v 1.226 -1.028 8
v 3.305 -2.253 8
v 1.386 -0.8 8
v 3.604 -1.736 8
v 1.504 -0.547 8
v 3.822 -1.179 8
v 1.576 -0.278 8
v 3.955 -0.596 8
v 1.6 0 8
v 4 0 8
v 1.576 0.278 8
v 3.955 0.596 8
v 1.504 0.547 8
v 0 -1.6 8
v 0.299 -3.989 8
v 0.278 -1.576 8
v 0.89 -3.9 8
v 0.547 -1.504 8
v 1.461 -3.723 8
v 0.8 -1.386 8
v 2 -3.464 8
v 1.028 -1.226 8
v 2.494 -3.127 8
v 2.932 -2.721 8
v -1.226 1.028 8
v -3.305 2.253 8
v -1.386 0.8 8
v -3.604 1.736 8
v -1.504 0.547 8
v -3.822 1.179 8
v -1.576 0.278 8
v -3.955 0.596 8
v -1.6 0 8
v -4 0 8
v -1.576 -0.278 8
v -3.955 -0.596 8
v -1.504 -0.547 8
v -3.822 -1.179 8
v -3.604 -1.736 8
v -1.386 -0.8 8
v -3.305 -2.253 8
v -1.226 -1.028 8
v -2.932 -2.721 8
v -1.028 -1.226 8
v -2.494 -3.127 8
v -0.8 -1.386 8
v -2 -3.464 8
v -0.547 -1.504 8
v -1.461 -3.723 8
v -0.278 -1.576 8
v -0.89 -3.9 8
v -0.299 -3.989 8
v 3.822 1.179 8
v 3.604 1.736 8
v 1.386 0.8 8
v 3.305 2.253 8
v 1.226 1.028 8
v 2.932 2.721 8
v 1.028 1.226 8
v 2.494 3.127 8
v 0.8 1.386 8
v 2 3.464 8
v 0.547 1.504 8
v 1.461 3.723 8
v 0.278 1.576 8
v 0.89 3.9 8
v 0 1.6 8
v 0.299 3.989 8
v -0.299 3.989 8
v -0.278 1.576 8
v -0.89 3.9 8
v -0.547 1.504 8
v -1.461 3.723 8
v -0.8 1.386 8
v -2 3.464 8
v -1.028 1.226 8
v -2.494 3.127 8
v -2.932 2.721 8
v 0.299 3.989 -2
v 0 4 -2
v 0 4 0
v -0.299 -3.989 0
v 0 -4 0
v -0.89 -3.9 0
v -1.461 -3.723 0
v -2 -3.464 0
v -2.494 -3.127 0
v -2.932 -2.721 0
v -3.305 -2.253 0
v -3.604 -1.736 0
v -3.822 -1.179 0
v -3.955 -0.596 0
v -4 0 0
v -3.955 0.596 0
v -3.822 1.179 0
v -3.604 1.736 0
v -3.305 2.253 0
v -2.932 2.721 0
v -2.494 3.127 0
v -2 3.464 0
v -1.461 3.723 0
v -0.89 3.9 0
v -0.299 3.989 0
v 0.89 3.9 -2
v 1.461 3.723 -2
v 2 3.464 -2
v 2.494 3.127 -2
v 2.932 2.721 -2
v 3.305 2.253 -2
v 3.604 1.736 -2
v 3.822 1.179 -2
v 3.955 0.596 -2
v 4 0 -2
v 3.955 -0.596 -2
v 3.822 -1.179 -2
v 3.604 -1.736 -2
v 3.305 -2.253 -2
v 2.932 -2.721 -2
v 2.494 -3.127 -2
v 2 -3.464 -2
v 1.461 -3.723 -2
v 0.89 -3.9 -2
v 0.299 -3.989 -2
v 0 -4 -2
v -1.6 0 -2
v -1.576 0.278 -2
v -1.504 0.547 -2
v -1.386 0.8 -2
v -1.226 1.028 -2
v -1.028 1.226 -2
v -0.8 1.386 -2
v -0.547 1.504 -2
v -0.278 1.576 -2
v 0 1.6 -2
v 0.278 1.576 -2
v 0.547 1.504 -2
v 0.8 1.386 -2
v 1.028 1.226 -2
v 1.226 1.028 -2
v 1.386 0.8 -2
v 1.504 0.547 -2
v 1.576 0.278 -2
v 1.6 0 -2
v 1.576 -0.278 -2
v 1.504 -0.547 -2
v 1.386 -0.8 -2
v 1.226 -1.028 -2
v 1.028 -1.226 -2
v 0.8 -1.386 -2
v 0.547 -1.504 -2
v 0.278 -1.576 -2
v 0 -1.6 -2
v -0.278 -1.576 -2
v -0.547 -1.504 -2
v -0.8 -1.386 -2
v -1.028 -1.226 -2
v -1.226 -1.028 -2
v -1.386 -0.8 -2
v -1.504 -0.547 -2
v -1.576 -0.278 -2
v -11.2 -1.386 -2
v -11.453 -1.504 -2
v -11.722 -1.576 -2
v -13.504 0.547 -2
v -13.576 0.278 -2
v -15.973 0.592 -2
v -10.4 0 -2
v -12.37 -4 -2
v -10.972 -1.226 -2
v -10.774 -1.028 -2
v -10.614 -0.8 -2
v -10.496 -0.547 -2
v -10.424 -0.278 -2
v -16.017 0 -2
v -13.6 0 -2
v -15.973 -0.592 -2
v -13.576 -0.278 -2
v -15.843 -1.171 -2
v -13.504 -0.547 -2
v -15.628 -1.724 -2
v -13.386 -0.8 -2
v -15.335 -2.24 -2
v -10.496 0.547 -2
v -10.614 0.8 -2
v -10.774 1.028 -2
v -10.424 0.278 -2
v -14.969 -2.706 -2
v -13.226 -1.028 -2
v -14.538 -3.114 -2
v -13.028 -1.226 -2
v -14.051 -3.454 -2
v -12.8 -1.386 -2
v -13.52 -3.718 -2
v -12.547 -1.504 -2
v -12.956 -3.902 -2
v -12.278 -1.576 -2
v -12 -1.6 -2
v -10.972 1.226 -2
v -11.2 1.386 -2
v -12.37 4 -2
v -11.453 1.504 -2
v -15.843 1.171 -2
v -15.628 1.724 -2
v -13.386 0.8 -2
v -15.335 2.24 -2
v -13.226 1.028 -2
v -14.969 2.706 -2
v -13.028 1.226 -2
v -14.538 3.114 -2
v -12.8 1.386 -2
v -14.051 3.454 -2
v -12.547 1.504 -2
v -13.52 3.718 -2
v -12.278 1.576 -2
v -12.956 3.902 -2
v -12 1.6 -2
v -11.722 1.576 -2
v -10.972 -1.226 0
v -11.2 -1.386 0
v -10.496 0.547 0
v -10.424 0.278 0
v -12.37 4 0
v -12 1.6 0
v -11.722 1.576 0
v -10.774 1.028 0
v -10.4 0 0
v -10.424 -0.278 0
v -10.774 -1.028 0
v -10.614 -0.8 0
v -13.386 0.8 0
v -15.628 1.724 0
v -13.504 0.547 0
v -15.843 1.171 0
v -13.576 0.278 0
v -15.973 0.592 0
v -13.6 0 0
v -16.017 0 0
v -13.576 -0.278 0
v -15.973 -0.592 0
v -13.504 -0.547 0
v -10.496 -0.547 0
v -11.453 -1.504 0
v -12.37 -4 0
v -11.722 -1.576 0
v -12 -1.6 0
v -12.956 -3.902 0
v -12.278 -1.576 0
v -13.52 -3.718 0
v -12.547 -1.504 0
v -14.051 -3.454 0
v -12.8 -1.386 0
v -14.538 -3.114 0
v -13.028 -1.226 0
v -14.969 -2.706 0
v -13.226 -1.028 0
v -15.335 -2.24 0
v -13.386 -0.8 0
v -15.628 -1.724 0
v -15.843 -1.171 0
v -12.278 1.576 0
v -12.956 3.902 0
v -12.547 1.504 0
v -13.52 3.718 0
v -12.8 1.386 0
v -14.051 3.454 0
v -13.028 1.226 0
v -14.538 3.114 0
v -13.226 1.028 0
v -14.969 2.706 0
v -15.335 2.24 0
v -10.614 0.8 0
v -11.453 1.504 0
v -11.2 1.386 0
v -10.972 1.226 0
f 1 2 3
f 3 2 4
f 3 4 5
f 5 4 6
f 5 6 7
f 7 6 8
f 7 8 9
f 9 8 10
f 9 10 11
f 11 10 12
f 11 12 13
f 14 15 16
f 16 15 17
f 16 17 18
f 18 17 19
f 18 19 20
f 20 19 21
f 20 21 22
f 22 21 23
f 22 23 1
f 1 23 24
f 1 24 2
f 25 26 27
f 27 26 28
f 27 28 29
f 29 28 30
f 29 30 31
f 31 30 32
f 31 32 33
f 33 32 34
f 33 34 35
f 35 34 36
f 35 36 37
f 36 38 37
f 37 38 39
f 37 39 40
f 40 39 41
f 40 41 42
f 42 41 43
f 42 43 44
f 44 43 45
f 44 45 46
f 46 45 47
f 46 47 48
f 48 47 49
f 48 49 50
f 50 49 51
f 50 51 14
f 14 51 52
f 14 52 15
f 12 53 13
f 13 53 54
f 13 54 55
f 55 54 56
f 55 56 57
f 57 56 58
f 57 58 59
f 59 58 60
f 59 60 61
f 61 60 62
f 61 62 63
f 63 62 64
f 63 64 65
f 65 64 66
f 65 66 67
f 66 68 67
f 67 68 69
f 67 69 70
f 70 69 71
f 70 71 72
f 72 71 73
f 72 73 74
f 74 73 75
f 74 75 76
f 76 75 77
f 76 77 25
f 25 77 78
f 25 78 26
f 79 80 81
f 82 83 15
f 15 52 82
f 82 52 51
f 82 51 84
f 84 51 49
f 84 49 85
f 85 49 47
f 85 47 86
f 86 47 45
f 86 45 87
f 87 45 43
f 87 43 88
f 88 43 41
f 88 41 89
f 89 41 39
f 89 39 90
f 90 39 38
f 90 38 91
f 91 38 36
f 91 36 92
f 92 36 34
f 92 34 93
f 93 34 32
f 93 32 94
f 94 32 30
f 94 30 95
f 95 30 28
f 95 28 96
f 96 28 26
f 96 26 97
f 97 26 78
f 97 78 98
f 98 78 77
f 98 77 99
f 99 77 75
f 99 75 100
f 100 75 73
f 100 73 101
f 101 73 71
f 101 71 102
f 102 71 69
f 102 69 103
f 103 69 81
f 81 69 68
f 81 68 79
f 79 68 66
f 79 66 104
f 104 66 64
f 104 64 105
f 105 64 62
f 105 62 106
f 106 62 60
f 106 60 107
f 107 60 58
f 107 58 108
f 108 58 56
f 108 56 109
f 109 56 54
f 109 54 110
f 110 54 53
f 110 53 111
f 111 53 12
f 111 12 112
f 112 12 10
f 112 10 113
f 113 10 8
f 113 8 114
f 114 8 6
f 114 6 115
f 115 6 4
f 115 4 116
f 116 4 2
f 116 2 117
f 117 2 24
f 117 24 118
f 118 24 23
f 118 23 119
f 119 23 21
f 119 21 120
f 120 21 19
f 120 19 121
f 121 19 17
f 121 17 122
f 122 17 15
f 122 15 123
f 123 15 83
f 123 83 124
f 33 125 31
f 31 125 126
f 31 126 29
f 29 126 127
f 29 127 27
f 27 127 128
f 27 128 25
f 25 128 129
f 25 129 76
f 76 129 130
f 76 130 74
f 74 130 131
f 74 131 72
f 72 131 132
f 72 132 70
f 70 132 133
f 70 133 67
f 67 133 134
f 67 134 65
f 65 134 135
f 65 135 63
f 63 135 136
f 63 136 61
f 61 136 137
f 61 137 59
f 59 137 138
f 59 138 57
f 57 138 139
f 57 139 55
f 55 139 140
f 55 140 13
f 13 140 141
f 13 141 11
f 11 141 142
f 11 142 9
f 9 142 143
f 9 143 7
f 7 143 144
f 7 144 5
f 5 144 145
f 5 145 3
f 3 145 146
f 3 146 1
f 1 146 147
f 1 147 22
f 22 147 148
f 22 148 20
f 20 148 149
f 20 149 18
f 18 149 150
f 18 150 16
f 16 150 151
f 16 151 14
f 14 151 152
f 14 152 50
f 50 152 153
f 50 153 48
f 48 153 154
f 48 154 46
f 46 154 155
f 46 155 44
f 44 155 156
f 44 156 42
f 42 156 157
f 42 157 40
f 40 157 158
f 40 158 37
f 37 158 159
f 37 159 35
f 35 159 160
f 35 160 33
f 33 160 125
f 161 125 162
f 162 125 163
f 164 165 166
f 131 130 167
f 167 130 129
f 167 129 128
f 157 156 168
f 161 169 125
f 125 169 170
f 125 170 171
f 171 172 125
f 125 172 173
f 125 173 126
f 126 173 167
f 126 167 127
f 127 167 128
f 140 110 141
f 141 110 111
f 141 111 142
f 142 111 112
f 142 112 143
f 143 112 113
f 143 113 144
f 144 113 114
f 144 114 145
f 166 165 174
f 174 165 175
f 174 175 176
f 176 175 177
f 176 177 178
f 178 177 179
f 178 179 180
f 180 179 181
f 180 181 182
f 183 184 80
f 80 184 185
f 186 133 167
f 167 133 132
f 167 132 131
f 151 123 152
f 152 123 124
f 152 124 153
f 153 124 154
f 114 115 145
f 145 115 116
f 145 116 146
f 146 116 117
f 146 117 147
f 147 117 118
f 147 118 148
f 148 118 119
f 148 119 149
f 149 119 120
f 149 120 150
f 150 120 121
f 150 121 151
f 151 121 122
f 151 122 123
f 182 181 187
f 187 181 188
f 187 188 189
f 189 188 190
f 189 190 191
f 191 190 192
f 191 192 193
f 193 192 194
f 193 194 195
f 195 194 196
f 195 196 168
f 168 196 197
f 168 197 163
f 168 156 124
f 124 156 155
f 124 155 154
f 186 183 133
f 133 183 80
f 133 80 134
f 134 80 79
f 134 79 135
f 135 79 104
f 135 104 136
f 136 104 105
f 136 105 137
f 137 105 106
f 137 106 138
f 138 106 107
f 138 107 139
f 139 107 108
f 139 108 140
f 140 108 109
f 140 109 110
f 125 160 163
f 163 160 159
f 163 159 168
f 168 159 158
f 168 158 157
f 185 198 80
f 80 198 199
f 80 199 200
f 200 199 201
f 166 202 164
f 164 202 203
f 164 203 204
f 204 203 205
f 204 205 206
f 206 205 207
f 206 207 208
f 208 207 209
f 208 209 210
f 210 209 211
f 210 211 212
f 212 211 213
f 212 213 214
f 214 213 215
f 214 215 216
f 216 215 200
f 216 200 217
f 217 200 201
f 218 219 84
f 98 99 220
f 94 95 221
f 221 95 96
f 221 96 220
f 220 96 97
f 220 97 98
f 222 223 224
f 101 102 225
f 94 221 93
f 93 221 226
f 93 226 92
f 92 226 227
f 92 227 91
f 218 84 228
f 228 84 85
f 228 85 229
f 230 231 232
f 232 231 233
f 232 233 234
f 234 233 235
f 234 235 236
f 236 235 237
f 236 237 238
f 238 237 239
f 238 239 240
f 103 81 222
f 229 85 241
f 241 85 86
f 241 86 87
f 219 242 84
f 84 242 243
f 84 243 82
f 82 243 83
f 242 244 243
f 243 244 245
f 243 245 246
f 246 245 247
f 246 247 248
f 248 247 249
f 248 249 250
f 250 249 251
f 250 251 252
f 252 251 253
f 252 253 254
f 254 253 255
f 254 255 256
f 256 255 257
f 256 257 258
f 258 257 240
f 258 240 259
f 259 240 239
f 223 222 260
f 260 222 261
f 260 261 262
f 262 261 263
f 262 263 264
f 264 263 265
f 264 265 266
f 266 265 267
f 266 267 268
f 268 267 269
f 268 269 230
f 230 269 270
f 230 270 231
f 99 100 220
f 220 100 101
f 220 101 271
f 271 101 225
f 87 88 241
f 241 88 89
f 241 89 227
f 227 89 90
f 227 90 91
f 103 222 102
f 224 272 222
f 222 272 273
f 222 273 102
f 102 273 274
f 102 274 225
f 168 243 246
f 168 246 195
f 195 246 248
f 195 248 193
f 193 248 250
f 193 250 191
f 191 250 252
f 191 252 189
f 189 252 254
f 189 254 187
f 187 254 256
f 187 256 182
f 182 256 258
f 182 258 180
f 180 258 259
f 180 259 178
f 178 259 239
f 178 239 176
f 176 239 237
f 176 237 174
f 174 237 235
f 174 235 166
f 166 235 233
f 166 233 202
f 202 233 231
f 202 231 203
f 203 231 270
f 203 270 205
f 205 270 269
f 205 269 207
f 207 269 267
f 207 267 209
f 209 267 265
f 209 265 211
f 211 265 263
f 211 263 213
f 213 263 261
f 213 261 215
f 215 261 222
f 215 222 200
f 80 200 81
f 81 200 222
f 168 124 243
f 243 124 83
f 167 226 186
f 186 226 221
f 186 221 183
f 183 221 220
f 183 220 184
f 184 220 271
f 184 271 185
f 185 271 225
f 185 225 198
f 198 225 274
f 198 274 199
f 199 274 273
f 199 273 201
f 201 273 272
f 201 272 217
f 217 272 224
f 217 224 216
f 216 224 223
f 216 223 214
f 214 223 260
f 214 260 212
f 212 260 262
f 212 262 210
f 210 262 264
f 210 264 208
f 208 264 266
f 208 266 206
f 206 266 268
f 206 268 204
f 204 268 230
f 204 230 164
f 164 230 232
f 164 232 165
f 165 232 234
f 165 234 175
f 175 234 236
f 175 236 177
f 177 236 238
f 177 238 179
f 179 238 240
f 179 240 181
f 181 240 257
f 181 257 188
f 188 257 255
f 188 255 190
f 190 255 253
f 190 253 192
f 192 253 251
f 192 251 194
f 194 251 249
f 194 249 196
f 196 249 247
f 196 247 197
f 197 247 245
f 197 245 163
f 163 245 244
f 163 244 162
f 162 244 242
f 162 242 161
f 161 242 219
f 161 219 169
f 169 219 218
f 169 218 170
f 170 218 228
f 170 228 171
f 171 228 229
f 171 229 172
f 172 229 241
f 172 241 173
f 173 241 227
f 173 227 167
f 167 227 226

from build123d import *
from build123d.topology import SkipClean

# Parameters (mm, degrees)
SKETCH_1_R      = 4
SKETCH_1_R_2    = 1.6
EXTRUDE_1_DEPTH = 8
EXTRUDE_START   = 2
SKETCH_2_R      = 1.6
EXTRUDE_2_DEPTH = 2


with BuildPart() as part:
    # Эскиз1 → Бобышка-Вытянуть1 (new body)
    with BuildSketch(Plane.XY):
        Circle(SKETCH_1_R)
        Circle(SKETCH_1_R_2, mode=Mode.SUBTRACT)
    extrude(amount=EXTRUDE_1_DEPTH)

    # Эскиз2 → Бобышка-Вытянуть2 (add)
    with SkipClean():  # the faces are left unmerged after this step: merging them gives an invalid solid
        with BuildSketch(Plane(origin=(0, 0, 0), x_dir=(-1, 0, 0), z_dir=(0, 0, -1)).offset(EXTRUDE_START)):
            with BuildLine():
                Line((0, -4), (12.370366619, -4))
                ThreePointArc((12.370366619, -4), (16.017109836, 0), (12.370366619, 4))
                Line((12.370366619, 4), (0, 4))
                ThreePointArc((0, 4), (-4, 0), (0, -4))
            make_face()
            with Locations((12, 0)):
                Circle(SKETCH_2_R, mode=Mode.SUBTRACT)
            Circle(SKETCH_2_R, mode=Mode.SUBTRACT)
        extrude(amount=-EXTRUDE_2_DEPTH)


solid = part.part
